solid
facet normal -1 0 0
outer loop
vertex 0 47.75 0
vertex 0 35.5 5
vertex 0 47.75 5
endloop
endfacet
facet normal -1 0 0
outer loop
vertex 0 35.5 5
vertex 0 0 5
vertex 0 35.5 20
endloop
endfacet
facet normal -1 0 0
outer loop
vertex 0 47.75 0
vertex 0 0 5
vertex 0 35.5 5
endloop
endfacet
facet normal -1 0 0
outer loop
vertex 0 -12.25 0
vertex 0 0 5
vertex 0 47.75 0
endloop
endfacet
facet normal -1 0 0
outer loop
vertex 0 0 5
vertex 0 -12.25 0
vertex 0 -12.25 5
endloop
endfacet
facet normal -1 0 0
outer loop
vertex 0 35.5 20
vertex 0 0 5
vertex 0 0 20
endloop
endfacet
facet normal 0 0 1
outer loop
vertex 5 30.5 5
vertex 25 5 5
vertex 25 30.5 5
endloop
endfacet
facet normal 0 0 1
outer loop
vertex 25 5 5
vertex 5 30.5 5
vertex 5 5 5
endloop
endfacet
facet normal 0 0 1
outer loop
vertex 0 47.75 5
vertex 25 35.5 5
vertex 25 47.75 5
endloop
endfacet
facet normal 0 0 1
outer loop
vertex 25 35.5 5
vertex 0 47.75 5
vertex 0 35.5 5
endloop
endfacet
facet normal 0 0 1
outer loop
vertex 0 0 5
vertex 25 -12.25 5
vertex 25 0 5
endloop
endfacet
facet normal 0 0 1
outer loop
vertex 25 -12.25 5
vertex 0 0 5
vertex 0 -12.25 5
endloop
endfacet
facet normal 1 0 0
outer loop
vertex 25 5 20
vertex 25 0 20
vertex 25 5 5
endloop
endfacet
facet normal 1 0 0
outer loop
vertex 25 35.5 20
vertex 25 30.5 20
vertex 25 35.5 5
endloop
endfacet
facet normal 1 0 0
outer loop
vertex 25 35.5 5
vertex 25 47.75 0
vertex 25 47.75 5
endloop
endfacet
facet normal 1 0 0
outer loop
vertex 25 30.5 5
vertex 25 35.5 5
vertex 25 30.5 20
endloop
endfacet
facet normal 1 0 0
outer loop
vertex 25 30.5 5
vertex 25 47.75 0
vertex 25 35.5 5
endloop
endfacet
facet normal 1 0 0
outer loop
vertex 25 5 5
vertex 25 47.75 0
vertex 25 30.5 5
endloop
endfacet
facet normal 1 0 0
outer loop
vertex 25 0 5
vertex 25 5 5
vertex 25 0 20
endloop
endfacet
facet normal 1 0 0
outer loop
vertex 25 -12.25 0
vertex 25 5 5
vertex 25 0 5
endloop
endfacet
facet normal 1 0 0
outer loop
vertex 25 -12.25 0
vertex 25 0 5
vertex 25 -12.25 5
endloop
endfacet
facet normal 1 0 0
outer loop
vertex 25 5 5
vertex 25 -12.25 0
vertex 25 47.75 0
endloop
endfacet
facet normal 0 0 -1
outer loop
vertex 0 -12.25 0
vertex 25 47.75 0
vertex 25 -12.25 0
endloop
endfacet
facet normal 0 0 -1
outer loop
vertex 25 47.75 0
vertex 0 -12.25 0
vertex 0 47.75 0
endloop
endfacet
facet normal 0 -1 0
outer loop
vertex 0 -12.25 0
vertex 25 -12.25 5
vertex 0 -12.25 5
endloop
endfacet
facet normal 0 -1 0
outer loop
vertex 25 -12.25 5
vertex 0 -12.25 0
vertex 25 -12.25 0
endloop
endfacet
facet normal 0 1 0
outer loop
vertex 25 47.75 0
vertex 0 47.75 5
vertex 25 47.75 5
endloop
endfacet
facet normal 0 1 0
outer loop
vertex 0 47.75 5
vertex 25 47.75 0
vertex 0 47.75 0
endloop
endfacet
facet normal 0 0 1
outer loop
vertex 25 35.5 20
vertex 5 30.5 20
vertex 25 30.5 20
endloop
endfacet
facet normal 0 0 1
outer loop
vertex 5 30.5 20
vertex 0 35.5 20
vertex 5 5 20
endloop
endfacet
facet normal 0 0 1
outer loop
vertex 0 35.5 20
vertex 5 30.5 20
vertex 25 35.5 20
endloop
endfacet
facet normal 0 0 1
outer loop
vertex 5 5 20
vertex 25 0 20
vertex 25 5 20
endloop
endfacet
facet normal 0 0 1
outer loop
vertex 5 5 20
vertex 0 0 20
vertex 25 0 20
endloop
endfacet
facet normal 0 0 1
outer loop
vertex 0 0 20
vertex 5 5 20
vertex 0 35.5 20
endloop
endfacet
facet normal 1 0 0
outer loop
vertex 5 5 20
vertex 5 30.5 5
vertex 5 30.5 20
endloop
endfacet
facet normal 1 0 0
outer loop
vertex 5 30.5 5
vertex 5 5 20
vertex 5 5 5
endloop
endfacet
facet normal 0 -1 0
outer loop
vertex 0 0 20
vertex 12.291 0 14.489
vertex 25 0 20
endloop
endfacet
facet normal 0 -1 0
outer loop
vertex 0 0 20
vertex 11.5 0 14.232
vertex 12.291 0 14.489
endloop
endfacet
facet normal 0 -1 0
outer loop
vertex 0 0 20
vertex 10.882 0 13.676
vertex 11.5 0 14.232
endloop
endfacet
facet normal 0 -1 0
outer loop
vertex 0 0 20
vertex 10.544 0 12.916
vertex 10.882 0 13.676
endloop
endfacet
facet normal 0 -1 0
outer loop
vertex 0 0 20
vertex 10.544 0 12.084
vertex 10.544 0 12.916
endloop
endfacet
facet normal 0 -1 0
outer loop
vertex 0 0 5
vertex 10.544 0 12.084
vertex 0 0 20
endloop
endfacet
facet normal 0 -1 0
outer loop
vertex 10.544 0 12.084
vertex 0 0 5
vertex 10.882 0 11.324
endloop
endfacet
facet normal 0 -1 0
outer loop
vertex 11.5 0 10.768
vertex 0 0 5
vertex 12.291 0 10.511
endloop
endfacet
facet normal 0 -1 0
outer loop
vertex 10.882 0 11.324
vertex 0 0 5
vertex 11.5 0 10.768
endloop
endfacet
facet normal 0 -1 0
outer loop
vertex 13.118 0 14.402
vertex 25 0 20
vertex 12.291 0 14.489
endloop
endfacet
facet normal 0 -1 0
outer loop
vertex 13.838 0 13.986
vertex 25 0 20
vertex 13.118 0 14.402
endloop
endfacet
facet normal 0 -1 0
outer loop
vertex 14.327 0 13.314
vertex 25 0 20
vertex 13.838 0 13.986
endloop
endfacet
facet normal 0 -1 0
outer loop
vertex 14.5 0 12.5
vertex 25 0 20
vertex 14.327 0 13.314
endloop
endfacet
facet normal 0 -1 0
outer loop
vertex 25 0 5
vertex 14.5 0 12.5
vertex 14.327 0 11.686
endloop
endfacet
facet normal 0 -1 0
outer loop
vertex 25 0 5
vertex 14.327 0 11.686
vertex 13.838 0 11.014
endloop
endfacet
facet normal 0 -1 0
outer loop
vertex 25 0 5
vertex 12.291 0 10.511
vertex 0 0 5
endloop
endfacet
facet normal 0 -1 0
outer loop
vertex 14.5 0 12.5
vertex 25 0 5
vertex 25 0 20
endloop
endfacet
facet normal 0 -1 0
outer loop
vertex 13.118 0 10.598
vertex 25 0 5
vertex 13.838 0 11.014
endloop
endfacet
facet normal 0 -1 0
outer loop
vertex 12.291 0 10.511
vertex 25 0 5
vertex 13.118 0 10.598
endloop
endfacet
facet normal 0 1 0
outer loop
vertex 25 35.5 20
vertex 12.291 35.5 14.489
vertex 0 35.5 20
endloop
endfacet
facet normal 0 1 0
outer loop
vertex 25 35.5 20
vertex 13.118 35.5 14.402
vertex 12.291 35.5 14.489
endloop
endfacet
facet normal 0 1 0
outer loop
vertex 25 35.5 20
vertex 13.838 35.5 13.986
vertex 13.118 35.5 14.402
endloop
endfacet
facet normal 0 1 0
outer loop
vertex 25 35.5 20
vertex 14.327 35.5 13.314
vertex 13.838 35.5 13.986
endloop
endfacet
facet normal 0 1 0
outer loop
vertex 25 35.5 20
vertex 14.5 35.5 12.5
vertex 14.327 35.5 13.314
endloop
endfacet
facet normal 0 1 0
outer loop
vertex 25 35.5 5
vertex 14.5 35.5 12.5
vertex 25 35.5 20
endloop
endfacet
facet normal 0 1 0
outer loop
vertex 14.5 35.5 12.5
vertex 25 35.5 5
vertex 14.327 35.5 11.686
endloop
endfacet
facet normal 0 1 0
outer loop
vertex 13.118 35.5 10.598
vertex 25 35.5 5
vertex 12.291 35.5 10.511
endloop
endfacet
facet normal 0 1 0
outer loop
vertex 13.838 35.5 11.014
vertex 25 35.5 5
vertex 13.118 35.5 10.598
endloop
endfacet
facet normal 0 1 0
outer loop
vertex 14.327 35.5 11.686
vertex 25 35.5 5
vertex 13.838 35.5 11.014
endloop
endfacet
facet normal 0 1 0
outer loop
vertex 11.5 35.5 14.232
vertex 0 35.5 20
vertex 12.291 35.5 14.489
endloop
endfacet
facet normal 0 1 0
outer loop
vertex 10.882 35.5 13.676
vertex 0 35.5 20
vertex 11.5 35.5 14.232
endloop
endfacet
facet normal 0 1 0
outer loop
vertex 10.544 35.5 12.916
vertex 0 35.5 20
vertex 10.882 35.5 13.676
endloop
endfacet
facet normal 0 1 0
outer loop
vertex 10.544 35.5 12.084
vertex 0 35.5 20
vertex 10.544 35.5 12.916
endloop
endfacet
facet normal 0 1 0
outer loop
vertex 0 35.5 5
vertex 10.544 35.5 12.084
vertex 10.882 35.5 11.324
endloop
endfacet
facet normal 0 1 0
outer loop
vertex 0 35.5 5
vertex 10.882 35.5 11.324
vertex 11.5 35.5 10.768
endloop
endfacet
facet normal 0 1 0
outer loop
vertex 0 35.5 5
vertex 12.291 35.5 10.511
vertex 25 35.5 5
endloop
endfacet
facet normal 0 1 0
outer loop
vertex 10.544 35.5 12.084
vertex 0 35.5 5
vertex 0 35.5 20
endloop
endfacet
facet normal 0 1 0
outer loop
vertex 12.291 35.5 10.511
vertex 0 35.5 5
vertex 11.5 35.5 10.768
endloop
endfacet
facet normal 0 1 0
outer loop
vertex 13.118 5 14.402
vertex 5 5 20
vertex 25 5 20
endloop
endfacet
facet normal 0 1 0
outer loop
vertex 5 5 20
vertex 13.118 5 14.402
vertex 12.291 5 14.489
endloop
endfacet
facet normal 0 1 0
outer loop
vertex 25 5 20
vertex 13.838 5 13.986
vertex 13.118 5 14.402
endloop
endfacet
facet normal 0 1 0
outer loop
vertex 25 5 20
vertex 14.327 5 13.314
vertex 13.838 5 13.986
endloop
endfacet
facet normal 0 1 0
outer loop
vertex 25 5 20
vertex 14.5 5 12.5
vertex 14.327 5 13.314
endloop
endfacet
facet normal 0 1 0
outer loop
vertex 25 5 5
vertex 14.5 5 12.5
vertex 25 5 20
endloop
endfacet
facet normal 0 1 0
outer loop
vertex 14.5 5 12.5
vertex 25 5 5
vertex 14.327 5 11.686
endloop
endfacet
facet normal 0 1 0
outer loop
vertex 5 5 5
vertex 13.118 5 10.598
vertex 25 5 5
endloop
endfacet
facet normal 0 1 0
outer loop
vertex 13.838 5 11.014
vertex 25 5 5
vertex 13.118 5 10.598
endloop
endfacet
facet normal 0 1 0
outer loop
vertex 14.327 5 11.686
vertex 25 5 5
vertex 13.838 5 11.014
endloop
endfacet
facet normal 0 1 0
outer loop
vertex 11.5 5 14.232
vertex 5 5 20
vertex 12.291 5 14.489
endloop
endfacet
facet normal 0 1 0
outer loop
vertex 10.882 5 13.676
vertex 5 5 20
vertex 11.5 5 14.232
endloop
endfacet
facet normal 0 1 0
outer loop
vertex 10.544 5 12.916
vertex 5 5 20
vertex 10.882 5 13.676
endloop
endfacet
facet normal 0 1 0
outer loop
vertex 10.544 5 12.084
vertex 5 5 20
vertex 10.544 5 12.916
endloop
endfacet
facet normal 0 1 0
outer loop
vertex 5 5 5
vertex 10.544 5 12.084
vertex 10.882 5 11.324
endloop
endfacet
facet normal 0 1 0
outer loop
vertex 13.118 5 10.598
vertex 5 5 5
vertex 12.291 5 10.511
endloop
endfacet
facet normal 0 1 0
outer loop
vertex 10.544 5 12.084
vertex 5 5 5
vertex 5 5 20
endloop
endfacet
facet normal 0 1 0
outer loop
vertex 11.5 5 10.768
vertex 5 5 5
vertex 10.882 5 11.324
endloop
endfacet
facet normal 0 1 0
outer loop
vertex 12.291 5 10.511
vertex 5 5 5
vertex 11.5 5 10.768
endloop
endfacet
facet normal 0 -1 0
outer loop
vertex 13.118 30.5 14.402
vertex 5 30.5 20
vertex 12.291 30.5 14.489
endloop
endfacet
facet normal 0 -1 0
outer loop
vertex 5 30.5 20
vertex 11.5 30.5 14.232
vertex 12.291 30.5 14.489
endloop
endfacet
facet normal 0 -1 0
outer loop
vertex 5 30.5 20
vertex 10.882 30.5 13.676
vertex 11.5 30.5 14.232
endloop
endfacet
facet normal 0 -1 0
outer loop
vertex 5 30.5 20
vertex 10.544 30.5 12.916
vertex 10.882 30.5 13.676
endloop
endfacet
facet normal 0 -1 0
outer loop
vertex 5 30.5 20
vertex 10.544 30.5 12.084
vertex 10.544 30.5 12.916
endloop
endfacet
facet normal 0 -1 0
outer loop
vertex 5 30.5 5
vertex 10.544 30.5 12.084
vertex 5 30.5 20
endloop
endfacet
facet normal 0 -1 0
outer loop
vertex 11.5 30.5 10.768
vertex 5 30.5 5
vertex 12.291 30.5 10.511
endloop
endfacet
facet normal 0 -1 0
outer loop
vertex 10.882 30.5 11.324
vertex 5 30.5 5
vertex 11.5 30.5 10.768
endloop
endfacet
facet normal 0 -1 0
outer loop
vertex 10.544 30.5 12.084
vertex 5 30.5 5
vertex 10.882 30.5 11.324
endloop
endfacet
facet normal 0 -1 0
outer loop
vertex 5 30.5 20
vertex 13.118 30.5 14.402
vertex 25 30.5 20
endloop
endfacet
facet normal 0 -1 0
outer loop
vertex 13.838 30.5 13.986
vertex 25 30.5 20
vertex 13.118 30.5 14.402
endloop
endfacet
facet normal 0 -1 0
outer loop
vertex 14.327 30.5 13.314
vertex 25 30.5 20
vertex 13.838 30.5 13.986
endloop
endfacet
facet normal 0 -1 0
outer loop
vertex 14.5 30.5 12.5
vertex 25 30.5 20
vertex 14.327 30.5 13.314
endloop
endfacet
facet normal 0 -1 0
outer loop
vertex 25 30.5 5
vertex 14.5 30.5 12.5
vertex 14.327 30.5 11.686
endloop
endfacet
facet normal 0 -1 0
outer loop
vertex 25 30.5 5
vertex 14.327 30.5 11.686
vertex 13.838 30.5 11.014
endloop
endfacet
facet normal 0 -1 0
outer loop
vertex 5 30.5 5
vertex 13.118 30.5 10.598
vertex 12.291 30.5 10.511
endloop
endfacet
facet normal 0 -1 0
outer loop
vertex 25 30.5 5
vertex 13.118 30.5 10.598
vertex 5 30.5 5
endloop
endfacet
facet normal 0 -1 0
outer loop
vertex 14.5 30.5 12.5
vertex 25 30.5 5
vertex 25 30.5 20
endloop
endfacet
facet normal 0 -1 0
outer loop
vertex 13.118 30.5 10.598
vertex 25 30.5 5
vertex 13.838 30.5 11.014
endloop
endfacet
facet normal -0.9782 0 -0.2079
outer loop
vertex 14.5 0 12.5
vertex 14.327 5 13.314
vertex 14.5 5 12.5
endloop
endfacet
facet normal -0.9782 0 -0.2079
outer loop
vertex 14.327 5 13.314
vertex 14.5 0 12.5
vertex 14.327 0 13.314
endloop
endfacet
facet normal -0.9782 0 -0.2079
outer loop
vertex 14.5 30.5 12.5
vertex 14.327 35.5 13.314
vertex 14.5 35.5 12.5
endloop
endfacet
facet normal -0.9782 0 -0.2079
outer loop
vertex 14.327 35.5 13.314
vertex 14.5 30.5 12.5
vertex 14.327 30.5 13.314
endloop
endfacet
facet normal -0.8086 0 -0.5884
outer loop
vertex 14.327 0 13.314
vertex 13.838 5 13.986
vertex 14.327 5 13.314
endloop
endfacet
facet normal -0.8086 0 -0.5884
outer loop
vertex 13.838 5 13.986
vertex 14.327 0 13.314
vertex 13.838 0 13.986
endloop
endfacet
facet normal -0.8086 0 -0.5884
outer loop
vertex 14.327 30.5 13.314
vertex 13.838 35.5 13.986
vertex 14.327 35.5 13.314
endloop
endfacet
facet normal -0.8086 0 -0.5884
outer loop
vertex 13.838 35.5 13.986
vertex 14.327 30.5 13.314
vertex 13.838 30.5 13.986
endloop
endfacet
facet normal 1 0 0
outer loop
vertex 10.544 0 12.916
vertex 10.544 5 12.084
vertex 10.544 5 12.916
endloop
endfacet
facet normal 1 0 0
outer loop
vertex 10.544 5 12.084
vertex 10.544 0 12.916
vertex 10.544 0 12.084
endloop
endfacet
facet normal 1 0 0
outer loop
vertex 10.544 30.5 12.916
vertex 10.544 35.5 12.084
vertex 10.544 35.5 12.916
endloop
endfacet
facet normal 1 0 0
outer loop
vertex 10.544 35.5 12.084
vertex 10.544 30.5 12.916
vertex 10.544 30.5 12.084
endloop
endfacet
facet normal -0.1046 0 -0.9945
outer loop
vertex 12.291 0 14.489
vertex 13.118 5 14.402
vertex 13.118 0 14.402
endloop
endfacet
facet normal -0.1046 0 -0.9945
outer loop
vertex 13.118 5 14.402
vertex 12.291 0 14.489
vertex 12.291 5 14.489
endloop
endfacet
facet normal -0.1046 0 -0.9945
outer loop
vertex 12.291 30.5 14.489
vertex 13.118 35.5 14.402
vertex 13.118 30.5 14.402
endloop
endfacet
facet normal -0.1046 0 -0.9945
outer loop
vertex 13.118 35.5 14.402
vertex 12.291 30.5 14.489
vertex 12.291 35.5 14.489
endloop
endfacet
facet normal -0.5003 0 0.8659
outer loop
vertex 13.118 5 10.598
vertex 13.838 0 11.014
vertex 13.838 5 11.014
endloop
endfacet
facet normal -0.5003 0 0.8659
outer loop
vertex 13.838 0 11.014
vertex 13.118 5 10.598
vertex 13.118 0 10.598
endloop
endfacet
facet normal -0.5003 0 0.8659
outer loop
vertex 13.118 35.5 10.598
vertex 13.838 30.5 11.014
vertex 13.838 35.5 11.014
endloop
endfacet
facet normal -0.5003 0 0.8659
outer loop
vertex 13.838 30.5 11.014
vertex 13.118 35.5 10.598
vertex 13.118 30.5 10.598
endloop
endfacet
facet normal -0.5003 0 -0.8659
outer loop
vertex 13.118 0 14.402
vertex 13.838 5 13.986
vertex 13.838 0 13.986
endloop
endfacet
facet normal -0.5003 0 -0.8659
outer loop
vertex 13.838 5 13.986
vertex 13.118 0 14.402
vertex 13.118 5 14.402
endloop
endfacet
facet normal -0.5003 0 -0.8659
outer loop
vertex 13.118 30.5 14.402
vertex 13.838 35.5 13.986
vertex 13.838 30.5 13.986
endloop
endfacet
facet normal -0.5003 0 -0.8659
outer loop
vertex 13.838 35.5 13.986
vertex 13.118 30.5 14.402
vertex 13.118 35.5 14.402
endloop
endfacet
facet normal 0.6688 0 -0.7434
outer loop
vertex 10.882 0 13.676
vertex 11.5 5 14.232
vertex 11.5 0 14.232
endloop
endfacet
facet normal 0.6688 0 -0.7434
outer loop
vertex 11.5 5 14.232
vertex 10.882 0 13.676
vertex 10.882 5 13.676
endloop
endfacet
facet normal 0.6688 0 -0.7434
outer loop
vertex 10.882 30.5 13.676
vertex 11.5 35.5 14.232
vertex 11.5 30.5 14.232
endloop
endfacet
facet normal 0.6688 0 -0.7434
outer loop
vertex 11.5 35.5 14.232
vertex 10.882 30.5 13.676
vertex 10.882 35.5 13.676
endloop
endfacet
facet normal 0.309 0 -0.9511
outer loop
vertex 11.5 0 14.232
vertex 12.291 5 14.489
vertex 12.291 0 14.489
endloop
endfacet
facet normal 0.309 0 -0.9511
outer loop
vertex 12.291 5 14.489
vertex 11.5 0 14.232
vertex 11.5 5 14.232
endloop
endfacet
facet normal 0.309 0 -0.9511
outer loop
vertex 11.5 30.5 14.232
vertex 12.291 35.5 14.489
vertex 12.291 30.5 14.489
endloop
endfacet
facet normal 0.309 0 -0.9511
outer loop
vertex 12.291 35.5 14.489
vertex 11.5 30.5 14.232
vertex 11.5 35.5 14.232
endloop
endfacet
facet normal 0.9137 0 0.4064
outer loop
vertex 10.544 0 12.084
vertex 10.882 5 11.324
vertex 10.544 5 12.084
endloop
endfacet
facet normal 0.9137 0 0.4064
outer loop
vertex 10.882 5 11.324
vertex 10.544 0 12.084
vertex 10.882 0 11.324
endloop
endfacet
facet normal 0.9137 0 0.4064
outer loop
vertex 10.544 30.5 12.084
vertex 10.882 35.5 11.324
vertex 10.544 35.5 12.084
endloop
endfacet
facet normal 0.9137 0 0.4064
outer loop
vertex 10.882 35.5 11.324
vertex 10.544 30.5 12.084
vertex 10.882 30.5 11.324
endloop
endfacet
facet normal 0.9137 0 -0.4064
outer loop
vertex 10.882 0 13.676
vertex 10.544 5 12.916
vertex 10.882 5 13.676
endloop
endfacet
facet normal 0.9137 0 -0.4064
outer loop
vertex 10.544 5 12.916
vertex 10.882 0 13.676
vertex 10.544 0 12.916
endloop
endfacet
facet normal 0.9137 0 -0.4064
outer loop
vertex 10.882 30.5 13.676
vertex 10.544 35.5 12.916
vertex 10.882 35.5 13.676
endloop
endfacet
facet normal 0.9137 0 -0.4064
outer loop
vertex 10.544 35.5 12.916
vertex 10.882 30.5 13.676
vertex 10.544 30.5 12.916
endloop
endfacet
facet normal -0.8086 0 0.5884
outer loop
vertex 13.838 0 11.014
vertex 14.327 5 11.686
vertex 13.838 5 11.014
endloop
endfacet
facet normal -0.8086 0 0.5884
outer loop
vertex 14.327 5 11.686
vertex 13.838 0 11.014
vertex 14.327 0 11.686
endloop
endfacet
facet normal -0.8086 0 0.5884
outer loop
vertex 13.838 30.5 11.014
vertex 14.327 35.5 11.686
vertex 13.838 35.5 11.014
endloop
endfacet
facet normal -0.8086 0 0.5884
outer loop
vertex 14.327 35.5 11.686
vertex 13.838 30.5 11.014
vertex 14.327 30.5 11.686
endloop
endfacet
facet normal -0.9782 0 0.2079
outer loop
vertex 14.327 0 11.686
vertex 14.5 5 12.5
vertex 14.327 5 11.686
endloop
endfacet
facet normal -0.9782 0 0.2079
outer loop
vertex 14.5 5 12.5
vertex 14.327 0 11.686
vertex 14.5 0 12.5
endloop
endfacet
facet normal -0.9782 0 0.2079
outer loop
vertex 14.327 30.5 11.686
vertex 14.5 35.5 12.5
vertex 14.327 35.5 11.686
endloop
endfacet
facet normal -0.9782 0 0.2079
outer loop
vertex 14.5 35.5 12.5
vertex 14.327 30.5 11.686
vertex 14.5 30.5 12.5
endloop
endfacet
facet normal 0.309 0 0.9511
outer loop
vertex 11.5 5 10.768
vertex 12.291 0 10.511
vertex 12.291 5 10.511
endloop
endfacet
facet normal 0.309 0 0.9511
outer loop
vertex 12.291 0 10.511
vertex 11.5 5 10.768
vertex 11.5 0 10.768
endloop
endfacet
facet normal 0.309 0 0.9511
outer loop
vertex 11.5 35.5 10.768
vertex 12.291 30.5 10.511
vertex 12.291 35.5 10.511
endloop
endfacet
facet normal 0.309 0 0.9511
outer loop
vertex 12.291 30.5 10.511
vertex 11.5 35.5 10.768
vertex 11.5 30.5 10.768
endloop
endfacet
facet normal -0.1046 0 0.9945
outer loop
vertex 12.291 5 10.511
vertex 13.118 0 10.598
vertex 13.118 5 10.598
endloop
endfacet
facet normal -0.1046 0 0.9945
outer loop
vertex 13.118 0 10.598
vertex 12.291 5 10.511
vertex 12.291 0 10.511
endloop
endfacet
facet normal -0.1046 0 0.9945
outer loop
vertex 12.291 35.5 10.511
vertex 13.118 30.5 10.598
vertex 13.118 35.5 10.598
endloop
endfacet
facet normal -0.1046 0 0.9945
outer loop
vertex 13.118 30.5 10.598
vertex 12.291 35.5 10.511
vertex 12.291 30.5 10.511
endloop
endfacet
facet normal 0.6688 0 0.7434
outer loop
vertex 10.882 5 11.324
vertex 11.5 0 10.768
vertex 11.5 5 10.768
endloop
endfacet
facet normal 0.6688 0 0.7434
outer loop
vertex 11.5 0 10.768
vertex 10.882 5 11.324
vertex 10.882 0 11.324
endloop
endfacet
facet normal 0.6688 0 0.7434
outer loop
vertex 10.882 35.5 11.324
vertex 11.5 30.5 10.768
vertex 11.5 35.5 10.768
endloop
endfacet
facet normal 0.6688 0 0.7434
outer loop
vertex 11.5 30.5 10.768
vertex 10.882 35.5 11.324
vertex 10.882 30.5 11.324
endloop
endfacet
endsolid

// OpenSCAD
/*
 * Created by:
 * Thomas Buck <xythobuz@xythobuz.de> in April 2016
 *
 * Licensed under the Creative Commons - Attribution license.
 */

// -----------------------------------------------------------

$fn = 15;

fan_width = 120;
fan_depth = 25.5;

hole_diameter = 4;
hole_distance = 7.5; // in x and z direction

wall_size = 5;
height = 20;
width = 25;
base_depth = 60; // minimum fan_depth + (2 * wall_size)

// -----------------------------------------------------------

depth = fan_depth + (2 * wall_size);

// -----------------------------------------------------------

module foot_walls() {
    // bottom wall
    translate([0, -(base_depth - depth) / 2, 0])
        cube([width, base_depth, wall_size]);
    
    // outer wall
    translate([0, 0, wall_size])
        cube([wall_size, depth, height - wall_size]);
    
    // back wall
    translate([wall_size, 0, wall_size])
        cube([width - wall_size, wall_size, height - wall_size]);
    
    // front wall
    translate([wall_size, fan_depth + wall_size, wall_size])
        cube([width - wall_size, wall_size, height - wall_size]);
}

module foot() {
    difference() {
        // solid parts
        foot_walls();
        
        // cut out screw hole
        translate([wall_size + hole_distance, depth + (wall_size / 2), wall_size + hole_distance])
            rotate([90, 0, 0])
            cylinder(d = hole_diameter, h = depth + wall_size);
    }
}

// -----------------------------------------------------------

// Visualize fan
%translate([wall_size, wall_size, wall_size])
    cube([fan_width, fan_depth, fan_width]);

foot();

// Visualize second foot (print twice!)
%translate([fan_width + (2 * wall_size), depth, 0])
    rotate([0, 0, 180])
    foot();
